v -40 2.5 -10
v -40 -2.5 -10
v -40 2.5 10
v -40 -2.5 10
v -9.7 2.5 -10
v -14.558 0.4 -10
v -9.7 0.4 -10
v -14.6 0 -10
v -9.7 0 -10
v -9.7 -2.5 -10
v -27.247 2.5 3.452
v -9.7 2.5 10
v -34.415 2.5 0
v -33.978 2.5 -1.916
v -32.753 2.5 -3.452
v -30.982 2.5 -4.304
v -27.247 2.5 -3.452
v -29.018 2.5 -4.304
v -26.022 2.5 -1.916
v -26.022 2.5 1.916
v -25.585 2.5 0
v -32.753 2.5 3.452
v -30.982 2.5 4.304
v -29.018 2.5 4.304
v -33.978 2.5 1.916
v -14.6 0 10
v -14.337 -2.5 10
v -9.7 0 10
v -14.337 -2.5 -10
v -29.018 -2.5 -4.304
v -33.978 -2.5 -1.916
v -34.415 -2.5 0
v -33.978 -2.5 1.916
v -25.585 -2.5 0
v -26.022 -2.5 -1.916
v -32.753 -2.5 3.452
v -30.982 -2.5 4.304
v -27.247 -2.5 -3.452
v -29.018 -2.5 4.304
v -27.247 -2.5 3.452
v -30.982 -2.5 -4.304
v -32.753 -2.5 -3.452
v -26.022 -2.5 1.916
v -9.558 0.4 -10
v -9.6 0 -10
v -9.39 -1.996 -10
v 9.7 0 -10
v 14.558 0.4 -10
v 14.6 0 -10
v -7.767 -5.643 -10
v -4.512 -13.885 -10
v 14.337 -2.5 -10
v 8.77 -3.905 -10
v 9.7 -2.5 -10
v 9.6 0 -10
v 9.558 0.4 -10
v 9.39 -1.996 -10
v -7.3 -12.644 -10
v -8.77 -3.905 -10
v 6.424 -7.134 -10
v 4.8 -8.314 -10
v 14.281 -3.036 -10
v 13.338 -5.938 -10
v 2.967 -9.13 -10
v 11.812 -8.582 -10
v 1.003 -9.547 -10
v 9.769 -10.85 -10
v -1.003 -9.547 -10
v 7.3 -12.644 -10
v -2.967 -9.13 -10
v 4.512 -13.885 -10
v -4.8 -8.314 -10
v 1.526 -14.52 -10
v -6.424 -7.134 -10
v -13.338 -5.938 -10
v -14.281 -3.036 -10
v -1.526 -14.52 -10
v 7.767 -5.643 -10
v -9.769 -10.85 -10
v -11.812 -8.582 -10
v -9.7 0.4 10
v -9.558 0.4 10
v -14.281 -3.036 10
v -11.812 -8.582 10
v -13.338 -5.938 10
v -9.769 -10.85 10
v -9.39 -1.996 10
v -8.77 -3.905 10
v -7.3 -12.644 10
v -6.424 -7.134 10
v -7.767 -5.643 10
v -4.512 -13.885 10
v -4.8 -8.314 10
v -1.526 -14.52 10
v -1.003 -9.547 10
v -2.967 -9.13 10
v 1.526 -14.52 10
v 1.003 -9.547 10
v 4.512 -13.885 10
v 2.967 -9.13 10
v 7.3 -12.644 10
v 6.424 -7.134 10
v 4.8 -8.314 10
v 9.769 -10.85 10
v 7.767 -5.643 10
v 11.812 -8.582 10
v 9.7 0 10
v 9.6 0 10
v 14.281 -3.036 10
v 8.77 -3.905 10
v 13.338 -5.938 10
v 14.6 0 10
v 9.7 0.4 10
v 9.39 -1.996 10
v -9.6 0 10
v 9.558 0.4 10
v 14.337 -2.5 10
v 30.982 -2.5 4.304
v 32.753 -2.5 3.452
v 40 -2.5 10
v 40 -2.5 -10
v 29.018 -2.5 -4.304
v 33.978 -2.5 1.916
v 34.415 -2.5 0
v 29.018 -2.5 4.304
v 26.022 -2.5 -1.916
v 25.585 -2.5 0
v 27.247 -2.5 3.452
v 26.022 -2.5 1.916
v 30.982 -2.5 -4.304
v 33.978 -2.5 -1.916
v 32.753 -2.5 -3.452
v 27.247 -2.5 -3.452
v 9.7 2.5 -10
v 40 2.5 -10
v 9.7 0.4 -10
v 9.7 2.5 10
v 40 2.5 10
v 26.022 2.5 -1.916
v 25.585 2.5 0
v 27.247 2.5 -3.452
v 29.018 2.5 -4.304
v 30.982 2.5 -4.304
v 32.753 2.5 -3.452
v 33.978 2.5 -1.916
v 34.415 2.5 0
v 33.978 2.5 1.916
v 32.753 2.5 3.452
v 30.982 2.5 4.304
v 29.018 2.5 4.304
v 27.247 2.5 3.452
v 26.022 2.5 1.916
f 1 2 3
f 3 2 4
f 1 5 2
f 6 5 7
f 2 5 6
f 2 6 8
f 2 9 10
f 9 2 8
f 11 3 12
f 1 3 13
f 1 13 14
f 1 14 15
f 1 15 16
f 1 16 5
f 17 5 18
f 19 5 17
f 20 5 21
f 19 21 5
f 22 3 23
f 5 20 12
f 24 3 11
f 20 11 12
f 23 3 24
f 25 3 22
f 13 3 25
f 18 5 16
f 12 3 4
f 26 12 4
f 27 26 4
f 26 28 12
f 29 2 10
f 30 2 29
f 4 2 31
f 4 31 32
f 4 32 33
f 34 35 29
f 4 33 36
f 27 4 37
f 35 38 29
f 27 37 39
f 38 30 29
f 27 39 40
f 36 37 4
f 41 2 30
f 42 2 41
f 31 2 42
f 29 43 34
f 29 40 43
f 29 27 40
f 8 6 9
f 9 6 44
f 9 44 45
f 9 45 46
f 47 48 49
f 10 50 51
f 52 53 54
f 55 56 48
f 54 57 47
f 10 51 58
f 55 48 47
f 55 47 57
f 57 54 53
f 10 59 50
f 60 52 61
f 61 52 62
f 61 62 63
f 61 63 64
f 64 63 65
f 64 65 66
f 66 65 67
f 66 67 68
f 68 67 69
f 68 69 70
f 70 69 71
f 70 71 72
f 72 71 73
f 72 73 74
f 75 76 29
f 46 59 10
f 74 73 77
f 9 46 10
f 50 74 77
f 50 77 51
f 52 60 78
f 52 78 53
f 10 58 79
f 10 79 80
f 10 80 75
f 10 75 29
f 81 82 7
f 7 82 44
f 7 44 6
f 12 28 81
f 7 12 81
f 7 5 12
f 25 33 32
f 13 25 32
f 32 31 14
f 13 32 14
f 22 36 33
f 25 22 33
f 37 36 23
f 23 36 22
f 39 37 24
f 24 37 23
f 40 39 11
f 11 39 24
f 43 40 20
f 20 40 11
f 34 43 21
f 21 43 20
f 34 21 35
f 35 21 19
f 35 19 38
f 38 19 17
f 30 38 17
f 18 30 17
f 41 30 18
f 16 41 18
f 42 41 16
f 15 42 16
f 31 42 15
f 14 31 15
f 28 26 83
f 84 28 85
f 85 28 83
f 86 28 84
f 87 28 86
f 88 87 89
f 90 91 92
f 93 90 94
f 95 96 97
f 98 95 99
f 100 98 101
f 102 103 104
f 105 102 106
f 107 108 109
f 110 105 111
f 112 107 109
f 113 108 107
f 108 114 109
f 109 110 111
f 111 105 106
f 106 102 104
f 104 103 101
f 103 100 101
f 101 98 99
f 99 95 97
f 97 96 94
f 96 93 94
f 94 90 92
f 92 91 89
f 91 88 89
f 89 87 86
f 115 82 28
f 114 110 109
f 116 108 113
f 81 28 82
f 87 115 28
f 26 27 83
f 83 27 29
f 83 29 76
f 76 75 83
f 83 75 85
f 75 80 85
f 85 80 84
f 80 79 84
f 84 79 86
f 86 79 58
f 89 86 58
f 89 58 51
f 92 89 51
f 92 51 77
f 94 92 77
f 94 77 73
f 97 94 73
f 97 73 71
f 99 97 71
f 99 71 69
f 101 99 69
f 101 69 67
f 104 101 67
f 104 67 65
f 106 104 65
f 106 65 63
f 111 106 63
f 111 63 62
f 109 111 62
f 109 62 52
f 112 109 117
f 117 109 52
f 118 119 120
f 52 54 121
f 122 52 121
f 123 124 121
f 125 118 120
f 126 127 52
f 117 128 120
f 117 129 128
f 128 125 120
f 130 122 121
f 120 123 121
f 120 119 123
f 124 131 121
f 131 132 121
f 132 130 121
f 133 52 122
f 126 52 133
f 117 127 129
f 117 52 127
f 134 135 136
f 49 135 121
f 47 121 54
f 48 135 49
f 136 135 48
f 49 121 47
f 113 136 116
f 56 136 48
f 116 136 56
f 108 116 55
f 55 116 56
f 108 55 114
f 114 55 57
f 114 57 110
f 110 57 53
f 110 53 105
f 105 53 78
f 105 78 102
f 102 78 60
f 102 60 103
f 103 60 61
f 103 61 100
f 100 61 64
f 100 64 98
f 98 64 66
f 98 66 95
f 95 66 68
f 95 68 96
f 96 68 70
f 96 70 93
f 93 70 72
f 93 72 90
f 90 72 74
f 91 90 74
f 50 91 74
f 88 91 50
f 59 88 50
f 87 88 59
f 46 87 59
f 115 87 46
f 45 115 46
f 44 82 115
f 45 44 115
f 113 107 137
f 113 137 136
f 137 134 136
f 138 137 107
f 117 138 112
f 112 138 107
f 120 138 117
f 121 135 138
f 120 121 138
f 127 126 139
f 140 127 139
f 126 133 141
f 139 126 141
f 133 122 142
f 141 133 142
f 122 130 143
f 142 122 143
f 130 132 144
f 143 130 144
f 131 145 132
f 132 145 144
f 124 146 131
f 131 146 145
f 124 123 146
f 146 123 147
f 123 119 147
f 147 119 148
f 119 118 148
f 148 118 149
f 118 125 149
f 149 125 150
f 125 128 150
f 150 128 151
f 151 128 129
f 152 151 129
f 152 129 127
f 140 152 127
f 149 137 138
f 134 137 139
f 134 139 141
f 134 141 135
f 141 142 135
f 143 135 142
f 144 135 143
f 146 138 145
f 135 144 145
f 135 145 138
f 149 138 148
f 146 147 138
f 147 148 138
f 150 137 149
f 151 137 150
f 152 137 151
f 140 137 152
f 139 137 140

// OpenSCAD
// A bracket for the antenna's pipe

brack_len=80;
brack_width=20;
brack_rad=9.6; // about 3/8"
sr=8.83; // standard diameter
T=5; //thickness

module bore(){
  cylinder(h=(T+2),d=sr,center=true);
}

module bracket(){
  difference(){
    cube([brack_len,brack_width,T],center=true);
    cube([brack_rad+9.8,brack_width,T],center=true);
    rotate([90,0,0]) cylinder(h=brack_width+2,r=brack_rad,center=true);
    translate([30,0,0]) bore();
    translate([-30,0,0]) bore();
	}

  rotate([90,0,0]){
    difference(){
      cylinder(h=brack_width,r=brack_rad+T,center=true);
      cylinder(h=brack_width,r=brack_rad,center=true);
      rotate([-90,0,0]) translate([0,0,-10]){
        cube([brack_rad+(5*T),brack_width+T,2*brack_rad],center=true);
      }
    }
  }
}

rotate([90,0,0])bracket();
